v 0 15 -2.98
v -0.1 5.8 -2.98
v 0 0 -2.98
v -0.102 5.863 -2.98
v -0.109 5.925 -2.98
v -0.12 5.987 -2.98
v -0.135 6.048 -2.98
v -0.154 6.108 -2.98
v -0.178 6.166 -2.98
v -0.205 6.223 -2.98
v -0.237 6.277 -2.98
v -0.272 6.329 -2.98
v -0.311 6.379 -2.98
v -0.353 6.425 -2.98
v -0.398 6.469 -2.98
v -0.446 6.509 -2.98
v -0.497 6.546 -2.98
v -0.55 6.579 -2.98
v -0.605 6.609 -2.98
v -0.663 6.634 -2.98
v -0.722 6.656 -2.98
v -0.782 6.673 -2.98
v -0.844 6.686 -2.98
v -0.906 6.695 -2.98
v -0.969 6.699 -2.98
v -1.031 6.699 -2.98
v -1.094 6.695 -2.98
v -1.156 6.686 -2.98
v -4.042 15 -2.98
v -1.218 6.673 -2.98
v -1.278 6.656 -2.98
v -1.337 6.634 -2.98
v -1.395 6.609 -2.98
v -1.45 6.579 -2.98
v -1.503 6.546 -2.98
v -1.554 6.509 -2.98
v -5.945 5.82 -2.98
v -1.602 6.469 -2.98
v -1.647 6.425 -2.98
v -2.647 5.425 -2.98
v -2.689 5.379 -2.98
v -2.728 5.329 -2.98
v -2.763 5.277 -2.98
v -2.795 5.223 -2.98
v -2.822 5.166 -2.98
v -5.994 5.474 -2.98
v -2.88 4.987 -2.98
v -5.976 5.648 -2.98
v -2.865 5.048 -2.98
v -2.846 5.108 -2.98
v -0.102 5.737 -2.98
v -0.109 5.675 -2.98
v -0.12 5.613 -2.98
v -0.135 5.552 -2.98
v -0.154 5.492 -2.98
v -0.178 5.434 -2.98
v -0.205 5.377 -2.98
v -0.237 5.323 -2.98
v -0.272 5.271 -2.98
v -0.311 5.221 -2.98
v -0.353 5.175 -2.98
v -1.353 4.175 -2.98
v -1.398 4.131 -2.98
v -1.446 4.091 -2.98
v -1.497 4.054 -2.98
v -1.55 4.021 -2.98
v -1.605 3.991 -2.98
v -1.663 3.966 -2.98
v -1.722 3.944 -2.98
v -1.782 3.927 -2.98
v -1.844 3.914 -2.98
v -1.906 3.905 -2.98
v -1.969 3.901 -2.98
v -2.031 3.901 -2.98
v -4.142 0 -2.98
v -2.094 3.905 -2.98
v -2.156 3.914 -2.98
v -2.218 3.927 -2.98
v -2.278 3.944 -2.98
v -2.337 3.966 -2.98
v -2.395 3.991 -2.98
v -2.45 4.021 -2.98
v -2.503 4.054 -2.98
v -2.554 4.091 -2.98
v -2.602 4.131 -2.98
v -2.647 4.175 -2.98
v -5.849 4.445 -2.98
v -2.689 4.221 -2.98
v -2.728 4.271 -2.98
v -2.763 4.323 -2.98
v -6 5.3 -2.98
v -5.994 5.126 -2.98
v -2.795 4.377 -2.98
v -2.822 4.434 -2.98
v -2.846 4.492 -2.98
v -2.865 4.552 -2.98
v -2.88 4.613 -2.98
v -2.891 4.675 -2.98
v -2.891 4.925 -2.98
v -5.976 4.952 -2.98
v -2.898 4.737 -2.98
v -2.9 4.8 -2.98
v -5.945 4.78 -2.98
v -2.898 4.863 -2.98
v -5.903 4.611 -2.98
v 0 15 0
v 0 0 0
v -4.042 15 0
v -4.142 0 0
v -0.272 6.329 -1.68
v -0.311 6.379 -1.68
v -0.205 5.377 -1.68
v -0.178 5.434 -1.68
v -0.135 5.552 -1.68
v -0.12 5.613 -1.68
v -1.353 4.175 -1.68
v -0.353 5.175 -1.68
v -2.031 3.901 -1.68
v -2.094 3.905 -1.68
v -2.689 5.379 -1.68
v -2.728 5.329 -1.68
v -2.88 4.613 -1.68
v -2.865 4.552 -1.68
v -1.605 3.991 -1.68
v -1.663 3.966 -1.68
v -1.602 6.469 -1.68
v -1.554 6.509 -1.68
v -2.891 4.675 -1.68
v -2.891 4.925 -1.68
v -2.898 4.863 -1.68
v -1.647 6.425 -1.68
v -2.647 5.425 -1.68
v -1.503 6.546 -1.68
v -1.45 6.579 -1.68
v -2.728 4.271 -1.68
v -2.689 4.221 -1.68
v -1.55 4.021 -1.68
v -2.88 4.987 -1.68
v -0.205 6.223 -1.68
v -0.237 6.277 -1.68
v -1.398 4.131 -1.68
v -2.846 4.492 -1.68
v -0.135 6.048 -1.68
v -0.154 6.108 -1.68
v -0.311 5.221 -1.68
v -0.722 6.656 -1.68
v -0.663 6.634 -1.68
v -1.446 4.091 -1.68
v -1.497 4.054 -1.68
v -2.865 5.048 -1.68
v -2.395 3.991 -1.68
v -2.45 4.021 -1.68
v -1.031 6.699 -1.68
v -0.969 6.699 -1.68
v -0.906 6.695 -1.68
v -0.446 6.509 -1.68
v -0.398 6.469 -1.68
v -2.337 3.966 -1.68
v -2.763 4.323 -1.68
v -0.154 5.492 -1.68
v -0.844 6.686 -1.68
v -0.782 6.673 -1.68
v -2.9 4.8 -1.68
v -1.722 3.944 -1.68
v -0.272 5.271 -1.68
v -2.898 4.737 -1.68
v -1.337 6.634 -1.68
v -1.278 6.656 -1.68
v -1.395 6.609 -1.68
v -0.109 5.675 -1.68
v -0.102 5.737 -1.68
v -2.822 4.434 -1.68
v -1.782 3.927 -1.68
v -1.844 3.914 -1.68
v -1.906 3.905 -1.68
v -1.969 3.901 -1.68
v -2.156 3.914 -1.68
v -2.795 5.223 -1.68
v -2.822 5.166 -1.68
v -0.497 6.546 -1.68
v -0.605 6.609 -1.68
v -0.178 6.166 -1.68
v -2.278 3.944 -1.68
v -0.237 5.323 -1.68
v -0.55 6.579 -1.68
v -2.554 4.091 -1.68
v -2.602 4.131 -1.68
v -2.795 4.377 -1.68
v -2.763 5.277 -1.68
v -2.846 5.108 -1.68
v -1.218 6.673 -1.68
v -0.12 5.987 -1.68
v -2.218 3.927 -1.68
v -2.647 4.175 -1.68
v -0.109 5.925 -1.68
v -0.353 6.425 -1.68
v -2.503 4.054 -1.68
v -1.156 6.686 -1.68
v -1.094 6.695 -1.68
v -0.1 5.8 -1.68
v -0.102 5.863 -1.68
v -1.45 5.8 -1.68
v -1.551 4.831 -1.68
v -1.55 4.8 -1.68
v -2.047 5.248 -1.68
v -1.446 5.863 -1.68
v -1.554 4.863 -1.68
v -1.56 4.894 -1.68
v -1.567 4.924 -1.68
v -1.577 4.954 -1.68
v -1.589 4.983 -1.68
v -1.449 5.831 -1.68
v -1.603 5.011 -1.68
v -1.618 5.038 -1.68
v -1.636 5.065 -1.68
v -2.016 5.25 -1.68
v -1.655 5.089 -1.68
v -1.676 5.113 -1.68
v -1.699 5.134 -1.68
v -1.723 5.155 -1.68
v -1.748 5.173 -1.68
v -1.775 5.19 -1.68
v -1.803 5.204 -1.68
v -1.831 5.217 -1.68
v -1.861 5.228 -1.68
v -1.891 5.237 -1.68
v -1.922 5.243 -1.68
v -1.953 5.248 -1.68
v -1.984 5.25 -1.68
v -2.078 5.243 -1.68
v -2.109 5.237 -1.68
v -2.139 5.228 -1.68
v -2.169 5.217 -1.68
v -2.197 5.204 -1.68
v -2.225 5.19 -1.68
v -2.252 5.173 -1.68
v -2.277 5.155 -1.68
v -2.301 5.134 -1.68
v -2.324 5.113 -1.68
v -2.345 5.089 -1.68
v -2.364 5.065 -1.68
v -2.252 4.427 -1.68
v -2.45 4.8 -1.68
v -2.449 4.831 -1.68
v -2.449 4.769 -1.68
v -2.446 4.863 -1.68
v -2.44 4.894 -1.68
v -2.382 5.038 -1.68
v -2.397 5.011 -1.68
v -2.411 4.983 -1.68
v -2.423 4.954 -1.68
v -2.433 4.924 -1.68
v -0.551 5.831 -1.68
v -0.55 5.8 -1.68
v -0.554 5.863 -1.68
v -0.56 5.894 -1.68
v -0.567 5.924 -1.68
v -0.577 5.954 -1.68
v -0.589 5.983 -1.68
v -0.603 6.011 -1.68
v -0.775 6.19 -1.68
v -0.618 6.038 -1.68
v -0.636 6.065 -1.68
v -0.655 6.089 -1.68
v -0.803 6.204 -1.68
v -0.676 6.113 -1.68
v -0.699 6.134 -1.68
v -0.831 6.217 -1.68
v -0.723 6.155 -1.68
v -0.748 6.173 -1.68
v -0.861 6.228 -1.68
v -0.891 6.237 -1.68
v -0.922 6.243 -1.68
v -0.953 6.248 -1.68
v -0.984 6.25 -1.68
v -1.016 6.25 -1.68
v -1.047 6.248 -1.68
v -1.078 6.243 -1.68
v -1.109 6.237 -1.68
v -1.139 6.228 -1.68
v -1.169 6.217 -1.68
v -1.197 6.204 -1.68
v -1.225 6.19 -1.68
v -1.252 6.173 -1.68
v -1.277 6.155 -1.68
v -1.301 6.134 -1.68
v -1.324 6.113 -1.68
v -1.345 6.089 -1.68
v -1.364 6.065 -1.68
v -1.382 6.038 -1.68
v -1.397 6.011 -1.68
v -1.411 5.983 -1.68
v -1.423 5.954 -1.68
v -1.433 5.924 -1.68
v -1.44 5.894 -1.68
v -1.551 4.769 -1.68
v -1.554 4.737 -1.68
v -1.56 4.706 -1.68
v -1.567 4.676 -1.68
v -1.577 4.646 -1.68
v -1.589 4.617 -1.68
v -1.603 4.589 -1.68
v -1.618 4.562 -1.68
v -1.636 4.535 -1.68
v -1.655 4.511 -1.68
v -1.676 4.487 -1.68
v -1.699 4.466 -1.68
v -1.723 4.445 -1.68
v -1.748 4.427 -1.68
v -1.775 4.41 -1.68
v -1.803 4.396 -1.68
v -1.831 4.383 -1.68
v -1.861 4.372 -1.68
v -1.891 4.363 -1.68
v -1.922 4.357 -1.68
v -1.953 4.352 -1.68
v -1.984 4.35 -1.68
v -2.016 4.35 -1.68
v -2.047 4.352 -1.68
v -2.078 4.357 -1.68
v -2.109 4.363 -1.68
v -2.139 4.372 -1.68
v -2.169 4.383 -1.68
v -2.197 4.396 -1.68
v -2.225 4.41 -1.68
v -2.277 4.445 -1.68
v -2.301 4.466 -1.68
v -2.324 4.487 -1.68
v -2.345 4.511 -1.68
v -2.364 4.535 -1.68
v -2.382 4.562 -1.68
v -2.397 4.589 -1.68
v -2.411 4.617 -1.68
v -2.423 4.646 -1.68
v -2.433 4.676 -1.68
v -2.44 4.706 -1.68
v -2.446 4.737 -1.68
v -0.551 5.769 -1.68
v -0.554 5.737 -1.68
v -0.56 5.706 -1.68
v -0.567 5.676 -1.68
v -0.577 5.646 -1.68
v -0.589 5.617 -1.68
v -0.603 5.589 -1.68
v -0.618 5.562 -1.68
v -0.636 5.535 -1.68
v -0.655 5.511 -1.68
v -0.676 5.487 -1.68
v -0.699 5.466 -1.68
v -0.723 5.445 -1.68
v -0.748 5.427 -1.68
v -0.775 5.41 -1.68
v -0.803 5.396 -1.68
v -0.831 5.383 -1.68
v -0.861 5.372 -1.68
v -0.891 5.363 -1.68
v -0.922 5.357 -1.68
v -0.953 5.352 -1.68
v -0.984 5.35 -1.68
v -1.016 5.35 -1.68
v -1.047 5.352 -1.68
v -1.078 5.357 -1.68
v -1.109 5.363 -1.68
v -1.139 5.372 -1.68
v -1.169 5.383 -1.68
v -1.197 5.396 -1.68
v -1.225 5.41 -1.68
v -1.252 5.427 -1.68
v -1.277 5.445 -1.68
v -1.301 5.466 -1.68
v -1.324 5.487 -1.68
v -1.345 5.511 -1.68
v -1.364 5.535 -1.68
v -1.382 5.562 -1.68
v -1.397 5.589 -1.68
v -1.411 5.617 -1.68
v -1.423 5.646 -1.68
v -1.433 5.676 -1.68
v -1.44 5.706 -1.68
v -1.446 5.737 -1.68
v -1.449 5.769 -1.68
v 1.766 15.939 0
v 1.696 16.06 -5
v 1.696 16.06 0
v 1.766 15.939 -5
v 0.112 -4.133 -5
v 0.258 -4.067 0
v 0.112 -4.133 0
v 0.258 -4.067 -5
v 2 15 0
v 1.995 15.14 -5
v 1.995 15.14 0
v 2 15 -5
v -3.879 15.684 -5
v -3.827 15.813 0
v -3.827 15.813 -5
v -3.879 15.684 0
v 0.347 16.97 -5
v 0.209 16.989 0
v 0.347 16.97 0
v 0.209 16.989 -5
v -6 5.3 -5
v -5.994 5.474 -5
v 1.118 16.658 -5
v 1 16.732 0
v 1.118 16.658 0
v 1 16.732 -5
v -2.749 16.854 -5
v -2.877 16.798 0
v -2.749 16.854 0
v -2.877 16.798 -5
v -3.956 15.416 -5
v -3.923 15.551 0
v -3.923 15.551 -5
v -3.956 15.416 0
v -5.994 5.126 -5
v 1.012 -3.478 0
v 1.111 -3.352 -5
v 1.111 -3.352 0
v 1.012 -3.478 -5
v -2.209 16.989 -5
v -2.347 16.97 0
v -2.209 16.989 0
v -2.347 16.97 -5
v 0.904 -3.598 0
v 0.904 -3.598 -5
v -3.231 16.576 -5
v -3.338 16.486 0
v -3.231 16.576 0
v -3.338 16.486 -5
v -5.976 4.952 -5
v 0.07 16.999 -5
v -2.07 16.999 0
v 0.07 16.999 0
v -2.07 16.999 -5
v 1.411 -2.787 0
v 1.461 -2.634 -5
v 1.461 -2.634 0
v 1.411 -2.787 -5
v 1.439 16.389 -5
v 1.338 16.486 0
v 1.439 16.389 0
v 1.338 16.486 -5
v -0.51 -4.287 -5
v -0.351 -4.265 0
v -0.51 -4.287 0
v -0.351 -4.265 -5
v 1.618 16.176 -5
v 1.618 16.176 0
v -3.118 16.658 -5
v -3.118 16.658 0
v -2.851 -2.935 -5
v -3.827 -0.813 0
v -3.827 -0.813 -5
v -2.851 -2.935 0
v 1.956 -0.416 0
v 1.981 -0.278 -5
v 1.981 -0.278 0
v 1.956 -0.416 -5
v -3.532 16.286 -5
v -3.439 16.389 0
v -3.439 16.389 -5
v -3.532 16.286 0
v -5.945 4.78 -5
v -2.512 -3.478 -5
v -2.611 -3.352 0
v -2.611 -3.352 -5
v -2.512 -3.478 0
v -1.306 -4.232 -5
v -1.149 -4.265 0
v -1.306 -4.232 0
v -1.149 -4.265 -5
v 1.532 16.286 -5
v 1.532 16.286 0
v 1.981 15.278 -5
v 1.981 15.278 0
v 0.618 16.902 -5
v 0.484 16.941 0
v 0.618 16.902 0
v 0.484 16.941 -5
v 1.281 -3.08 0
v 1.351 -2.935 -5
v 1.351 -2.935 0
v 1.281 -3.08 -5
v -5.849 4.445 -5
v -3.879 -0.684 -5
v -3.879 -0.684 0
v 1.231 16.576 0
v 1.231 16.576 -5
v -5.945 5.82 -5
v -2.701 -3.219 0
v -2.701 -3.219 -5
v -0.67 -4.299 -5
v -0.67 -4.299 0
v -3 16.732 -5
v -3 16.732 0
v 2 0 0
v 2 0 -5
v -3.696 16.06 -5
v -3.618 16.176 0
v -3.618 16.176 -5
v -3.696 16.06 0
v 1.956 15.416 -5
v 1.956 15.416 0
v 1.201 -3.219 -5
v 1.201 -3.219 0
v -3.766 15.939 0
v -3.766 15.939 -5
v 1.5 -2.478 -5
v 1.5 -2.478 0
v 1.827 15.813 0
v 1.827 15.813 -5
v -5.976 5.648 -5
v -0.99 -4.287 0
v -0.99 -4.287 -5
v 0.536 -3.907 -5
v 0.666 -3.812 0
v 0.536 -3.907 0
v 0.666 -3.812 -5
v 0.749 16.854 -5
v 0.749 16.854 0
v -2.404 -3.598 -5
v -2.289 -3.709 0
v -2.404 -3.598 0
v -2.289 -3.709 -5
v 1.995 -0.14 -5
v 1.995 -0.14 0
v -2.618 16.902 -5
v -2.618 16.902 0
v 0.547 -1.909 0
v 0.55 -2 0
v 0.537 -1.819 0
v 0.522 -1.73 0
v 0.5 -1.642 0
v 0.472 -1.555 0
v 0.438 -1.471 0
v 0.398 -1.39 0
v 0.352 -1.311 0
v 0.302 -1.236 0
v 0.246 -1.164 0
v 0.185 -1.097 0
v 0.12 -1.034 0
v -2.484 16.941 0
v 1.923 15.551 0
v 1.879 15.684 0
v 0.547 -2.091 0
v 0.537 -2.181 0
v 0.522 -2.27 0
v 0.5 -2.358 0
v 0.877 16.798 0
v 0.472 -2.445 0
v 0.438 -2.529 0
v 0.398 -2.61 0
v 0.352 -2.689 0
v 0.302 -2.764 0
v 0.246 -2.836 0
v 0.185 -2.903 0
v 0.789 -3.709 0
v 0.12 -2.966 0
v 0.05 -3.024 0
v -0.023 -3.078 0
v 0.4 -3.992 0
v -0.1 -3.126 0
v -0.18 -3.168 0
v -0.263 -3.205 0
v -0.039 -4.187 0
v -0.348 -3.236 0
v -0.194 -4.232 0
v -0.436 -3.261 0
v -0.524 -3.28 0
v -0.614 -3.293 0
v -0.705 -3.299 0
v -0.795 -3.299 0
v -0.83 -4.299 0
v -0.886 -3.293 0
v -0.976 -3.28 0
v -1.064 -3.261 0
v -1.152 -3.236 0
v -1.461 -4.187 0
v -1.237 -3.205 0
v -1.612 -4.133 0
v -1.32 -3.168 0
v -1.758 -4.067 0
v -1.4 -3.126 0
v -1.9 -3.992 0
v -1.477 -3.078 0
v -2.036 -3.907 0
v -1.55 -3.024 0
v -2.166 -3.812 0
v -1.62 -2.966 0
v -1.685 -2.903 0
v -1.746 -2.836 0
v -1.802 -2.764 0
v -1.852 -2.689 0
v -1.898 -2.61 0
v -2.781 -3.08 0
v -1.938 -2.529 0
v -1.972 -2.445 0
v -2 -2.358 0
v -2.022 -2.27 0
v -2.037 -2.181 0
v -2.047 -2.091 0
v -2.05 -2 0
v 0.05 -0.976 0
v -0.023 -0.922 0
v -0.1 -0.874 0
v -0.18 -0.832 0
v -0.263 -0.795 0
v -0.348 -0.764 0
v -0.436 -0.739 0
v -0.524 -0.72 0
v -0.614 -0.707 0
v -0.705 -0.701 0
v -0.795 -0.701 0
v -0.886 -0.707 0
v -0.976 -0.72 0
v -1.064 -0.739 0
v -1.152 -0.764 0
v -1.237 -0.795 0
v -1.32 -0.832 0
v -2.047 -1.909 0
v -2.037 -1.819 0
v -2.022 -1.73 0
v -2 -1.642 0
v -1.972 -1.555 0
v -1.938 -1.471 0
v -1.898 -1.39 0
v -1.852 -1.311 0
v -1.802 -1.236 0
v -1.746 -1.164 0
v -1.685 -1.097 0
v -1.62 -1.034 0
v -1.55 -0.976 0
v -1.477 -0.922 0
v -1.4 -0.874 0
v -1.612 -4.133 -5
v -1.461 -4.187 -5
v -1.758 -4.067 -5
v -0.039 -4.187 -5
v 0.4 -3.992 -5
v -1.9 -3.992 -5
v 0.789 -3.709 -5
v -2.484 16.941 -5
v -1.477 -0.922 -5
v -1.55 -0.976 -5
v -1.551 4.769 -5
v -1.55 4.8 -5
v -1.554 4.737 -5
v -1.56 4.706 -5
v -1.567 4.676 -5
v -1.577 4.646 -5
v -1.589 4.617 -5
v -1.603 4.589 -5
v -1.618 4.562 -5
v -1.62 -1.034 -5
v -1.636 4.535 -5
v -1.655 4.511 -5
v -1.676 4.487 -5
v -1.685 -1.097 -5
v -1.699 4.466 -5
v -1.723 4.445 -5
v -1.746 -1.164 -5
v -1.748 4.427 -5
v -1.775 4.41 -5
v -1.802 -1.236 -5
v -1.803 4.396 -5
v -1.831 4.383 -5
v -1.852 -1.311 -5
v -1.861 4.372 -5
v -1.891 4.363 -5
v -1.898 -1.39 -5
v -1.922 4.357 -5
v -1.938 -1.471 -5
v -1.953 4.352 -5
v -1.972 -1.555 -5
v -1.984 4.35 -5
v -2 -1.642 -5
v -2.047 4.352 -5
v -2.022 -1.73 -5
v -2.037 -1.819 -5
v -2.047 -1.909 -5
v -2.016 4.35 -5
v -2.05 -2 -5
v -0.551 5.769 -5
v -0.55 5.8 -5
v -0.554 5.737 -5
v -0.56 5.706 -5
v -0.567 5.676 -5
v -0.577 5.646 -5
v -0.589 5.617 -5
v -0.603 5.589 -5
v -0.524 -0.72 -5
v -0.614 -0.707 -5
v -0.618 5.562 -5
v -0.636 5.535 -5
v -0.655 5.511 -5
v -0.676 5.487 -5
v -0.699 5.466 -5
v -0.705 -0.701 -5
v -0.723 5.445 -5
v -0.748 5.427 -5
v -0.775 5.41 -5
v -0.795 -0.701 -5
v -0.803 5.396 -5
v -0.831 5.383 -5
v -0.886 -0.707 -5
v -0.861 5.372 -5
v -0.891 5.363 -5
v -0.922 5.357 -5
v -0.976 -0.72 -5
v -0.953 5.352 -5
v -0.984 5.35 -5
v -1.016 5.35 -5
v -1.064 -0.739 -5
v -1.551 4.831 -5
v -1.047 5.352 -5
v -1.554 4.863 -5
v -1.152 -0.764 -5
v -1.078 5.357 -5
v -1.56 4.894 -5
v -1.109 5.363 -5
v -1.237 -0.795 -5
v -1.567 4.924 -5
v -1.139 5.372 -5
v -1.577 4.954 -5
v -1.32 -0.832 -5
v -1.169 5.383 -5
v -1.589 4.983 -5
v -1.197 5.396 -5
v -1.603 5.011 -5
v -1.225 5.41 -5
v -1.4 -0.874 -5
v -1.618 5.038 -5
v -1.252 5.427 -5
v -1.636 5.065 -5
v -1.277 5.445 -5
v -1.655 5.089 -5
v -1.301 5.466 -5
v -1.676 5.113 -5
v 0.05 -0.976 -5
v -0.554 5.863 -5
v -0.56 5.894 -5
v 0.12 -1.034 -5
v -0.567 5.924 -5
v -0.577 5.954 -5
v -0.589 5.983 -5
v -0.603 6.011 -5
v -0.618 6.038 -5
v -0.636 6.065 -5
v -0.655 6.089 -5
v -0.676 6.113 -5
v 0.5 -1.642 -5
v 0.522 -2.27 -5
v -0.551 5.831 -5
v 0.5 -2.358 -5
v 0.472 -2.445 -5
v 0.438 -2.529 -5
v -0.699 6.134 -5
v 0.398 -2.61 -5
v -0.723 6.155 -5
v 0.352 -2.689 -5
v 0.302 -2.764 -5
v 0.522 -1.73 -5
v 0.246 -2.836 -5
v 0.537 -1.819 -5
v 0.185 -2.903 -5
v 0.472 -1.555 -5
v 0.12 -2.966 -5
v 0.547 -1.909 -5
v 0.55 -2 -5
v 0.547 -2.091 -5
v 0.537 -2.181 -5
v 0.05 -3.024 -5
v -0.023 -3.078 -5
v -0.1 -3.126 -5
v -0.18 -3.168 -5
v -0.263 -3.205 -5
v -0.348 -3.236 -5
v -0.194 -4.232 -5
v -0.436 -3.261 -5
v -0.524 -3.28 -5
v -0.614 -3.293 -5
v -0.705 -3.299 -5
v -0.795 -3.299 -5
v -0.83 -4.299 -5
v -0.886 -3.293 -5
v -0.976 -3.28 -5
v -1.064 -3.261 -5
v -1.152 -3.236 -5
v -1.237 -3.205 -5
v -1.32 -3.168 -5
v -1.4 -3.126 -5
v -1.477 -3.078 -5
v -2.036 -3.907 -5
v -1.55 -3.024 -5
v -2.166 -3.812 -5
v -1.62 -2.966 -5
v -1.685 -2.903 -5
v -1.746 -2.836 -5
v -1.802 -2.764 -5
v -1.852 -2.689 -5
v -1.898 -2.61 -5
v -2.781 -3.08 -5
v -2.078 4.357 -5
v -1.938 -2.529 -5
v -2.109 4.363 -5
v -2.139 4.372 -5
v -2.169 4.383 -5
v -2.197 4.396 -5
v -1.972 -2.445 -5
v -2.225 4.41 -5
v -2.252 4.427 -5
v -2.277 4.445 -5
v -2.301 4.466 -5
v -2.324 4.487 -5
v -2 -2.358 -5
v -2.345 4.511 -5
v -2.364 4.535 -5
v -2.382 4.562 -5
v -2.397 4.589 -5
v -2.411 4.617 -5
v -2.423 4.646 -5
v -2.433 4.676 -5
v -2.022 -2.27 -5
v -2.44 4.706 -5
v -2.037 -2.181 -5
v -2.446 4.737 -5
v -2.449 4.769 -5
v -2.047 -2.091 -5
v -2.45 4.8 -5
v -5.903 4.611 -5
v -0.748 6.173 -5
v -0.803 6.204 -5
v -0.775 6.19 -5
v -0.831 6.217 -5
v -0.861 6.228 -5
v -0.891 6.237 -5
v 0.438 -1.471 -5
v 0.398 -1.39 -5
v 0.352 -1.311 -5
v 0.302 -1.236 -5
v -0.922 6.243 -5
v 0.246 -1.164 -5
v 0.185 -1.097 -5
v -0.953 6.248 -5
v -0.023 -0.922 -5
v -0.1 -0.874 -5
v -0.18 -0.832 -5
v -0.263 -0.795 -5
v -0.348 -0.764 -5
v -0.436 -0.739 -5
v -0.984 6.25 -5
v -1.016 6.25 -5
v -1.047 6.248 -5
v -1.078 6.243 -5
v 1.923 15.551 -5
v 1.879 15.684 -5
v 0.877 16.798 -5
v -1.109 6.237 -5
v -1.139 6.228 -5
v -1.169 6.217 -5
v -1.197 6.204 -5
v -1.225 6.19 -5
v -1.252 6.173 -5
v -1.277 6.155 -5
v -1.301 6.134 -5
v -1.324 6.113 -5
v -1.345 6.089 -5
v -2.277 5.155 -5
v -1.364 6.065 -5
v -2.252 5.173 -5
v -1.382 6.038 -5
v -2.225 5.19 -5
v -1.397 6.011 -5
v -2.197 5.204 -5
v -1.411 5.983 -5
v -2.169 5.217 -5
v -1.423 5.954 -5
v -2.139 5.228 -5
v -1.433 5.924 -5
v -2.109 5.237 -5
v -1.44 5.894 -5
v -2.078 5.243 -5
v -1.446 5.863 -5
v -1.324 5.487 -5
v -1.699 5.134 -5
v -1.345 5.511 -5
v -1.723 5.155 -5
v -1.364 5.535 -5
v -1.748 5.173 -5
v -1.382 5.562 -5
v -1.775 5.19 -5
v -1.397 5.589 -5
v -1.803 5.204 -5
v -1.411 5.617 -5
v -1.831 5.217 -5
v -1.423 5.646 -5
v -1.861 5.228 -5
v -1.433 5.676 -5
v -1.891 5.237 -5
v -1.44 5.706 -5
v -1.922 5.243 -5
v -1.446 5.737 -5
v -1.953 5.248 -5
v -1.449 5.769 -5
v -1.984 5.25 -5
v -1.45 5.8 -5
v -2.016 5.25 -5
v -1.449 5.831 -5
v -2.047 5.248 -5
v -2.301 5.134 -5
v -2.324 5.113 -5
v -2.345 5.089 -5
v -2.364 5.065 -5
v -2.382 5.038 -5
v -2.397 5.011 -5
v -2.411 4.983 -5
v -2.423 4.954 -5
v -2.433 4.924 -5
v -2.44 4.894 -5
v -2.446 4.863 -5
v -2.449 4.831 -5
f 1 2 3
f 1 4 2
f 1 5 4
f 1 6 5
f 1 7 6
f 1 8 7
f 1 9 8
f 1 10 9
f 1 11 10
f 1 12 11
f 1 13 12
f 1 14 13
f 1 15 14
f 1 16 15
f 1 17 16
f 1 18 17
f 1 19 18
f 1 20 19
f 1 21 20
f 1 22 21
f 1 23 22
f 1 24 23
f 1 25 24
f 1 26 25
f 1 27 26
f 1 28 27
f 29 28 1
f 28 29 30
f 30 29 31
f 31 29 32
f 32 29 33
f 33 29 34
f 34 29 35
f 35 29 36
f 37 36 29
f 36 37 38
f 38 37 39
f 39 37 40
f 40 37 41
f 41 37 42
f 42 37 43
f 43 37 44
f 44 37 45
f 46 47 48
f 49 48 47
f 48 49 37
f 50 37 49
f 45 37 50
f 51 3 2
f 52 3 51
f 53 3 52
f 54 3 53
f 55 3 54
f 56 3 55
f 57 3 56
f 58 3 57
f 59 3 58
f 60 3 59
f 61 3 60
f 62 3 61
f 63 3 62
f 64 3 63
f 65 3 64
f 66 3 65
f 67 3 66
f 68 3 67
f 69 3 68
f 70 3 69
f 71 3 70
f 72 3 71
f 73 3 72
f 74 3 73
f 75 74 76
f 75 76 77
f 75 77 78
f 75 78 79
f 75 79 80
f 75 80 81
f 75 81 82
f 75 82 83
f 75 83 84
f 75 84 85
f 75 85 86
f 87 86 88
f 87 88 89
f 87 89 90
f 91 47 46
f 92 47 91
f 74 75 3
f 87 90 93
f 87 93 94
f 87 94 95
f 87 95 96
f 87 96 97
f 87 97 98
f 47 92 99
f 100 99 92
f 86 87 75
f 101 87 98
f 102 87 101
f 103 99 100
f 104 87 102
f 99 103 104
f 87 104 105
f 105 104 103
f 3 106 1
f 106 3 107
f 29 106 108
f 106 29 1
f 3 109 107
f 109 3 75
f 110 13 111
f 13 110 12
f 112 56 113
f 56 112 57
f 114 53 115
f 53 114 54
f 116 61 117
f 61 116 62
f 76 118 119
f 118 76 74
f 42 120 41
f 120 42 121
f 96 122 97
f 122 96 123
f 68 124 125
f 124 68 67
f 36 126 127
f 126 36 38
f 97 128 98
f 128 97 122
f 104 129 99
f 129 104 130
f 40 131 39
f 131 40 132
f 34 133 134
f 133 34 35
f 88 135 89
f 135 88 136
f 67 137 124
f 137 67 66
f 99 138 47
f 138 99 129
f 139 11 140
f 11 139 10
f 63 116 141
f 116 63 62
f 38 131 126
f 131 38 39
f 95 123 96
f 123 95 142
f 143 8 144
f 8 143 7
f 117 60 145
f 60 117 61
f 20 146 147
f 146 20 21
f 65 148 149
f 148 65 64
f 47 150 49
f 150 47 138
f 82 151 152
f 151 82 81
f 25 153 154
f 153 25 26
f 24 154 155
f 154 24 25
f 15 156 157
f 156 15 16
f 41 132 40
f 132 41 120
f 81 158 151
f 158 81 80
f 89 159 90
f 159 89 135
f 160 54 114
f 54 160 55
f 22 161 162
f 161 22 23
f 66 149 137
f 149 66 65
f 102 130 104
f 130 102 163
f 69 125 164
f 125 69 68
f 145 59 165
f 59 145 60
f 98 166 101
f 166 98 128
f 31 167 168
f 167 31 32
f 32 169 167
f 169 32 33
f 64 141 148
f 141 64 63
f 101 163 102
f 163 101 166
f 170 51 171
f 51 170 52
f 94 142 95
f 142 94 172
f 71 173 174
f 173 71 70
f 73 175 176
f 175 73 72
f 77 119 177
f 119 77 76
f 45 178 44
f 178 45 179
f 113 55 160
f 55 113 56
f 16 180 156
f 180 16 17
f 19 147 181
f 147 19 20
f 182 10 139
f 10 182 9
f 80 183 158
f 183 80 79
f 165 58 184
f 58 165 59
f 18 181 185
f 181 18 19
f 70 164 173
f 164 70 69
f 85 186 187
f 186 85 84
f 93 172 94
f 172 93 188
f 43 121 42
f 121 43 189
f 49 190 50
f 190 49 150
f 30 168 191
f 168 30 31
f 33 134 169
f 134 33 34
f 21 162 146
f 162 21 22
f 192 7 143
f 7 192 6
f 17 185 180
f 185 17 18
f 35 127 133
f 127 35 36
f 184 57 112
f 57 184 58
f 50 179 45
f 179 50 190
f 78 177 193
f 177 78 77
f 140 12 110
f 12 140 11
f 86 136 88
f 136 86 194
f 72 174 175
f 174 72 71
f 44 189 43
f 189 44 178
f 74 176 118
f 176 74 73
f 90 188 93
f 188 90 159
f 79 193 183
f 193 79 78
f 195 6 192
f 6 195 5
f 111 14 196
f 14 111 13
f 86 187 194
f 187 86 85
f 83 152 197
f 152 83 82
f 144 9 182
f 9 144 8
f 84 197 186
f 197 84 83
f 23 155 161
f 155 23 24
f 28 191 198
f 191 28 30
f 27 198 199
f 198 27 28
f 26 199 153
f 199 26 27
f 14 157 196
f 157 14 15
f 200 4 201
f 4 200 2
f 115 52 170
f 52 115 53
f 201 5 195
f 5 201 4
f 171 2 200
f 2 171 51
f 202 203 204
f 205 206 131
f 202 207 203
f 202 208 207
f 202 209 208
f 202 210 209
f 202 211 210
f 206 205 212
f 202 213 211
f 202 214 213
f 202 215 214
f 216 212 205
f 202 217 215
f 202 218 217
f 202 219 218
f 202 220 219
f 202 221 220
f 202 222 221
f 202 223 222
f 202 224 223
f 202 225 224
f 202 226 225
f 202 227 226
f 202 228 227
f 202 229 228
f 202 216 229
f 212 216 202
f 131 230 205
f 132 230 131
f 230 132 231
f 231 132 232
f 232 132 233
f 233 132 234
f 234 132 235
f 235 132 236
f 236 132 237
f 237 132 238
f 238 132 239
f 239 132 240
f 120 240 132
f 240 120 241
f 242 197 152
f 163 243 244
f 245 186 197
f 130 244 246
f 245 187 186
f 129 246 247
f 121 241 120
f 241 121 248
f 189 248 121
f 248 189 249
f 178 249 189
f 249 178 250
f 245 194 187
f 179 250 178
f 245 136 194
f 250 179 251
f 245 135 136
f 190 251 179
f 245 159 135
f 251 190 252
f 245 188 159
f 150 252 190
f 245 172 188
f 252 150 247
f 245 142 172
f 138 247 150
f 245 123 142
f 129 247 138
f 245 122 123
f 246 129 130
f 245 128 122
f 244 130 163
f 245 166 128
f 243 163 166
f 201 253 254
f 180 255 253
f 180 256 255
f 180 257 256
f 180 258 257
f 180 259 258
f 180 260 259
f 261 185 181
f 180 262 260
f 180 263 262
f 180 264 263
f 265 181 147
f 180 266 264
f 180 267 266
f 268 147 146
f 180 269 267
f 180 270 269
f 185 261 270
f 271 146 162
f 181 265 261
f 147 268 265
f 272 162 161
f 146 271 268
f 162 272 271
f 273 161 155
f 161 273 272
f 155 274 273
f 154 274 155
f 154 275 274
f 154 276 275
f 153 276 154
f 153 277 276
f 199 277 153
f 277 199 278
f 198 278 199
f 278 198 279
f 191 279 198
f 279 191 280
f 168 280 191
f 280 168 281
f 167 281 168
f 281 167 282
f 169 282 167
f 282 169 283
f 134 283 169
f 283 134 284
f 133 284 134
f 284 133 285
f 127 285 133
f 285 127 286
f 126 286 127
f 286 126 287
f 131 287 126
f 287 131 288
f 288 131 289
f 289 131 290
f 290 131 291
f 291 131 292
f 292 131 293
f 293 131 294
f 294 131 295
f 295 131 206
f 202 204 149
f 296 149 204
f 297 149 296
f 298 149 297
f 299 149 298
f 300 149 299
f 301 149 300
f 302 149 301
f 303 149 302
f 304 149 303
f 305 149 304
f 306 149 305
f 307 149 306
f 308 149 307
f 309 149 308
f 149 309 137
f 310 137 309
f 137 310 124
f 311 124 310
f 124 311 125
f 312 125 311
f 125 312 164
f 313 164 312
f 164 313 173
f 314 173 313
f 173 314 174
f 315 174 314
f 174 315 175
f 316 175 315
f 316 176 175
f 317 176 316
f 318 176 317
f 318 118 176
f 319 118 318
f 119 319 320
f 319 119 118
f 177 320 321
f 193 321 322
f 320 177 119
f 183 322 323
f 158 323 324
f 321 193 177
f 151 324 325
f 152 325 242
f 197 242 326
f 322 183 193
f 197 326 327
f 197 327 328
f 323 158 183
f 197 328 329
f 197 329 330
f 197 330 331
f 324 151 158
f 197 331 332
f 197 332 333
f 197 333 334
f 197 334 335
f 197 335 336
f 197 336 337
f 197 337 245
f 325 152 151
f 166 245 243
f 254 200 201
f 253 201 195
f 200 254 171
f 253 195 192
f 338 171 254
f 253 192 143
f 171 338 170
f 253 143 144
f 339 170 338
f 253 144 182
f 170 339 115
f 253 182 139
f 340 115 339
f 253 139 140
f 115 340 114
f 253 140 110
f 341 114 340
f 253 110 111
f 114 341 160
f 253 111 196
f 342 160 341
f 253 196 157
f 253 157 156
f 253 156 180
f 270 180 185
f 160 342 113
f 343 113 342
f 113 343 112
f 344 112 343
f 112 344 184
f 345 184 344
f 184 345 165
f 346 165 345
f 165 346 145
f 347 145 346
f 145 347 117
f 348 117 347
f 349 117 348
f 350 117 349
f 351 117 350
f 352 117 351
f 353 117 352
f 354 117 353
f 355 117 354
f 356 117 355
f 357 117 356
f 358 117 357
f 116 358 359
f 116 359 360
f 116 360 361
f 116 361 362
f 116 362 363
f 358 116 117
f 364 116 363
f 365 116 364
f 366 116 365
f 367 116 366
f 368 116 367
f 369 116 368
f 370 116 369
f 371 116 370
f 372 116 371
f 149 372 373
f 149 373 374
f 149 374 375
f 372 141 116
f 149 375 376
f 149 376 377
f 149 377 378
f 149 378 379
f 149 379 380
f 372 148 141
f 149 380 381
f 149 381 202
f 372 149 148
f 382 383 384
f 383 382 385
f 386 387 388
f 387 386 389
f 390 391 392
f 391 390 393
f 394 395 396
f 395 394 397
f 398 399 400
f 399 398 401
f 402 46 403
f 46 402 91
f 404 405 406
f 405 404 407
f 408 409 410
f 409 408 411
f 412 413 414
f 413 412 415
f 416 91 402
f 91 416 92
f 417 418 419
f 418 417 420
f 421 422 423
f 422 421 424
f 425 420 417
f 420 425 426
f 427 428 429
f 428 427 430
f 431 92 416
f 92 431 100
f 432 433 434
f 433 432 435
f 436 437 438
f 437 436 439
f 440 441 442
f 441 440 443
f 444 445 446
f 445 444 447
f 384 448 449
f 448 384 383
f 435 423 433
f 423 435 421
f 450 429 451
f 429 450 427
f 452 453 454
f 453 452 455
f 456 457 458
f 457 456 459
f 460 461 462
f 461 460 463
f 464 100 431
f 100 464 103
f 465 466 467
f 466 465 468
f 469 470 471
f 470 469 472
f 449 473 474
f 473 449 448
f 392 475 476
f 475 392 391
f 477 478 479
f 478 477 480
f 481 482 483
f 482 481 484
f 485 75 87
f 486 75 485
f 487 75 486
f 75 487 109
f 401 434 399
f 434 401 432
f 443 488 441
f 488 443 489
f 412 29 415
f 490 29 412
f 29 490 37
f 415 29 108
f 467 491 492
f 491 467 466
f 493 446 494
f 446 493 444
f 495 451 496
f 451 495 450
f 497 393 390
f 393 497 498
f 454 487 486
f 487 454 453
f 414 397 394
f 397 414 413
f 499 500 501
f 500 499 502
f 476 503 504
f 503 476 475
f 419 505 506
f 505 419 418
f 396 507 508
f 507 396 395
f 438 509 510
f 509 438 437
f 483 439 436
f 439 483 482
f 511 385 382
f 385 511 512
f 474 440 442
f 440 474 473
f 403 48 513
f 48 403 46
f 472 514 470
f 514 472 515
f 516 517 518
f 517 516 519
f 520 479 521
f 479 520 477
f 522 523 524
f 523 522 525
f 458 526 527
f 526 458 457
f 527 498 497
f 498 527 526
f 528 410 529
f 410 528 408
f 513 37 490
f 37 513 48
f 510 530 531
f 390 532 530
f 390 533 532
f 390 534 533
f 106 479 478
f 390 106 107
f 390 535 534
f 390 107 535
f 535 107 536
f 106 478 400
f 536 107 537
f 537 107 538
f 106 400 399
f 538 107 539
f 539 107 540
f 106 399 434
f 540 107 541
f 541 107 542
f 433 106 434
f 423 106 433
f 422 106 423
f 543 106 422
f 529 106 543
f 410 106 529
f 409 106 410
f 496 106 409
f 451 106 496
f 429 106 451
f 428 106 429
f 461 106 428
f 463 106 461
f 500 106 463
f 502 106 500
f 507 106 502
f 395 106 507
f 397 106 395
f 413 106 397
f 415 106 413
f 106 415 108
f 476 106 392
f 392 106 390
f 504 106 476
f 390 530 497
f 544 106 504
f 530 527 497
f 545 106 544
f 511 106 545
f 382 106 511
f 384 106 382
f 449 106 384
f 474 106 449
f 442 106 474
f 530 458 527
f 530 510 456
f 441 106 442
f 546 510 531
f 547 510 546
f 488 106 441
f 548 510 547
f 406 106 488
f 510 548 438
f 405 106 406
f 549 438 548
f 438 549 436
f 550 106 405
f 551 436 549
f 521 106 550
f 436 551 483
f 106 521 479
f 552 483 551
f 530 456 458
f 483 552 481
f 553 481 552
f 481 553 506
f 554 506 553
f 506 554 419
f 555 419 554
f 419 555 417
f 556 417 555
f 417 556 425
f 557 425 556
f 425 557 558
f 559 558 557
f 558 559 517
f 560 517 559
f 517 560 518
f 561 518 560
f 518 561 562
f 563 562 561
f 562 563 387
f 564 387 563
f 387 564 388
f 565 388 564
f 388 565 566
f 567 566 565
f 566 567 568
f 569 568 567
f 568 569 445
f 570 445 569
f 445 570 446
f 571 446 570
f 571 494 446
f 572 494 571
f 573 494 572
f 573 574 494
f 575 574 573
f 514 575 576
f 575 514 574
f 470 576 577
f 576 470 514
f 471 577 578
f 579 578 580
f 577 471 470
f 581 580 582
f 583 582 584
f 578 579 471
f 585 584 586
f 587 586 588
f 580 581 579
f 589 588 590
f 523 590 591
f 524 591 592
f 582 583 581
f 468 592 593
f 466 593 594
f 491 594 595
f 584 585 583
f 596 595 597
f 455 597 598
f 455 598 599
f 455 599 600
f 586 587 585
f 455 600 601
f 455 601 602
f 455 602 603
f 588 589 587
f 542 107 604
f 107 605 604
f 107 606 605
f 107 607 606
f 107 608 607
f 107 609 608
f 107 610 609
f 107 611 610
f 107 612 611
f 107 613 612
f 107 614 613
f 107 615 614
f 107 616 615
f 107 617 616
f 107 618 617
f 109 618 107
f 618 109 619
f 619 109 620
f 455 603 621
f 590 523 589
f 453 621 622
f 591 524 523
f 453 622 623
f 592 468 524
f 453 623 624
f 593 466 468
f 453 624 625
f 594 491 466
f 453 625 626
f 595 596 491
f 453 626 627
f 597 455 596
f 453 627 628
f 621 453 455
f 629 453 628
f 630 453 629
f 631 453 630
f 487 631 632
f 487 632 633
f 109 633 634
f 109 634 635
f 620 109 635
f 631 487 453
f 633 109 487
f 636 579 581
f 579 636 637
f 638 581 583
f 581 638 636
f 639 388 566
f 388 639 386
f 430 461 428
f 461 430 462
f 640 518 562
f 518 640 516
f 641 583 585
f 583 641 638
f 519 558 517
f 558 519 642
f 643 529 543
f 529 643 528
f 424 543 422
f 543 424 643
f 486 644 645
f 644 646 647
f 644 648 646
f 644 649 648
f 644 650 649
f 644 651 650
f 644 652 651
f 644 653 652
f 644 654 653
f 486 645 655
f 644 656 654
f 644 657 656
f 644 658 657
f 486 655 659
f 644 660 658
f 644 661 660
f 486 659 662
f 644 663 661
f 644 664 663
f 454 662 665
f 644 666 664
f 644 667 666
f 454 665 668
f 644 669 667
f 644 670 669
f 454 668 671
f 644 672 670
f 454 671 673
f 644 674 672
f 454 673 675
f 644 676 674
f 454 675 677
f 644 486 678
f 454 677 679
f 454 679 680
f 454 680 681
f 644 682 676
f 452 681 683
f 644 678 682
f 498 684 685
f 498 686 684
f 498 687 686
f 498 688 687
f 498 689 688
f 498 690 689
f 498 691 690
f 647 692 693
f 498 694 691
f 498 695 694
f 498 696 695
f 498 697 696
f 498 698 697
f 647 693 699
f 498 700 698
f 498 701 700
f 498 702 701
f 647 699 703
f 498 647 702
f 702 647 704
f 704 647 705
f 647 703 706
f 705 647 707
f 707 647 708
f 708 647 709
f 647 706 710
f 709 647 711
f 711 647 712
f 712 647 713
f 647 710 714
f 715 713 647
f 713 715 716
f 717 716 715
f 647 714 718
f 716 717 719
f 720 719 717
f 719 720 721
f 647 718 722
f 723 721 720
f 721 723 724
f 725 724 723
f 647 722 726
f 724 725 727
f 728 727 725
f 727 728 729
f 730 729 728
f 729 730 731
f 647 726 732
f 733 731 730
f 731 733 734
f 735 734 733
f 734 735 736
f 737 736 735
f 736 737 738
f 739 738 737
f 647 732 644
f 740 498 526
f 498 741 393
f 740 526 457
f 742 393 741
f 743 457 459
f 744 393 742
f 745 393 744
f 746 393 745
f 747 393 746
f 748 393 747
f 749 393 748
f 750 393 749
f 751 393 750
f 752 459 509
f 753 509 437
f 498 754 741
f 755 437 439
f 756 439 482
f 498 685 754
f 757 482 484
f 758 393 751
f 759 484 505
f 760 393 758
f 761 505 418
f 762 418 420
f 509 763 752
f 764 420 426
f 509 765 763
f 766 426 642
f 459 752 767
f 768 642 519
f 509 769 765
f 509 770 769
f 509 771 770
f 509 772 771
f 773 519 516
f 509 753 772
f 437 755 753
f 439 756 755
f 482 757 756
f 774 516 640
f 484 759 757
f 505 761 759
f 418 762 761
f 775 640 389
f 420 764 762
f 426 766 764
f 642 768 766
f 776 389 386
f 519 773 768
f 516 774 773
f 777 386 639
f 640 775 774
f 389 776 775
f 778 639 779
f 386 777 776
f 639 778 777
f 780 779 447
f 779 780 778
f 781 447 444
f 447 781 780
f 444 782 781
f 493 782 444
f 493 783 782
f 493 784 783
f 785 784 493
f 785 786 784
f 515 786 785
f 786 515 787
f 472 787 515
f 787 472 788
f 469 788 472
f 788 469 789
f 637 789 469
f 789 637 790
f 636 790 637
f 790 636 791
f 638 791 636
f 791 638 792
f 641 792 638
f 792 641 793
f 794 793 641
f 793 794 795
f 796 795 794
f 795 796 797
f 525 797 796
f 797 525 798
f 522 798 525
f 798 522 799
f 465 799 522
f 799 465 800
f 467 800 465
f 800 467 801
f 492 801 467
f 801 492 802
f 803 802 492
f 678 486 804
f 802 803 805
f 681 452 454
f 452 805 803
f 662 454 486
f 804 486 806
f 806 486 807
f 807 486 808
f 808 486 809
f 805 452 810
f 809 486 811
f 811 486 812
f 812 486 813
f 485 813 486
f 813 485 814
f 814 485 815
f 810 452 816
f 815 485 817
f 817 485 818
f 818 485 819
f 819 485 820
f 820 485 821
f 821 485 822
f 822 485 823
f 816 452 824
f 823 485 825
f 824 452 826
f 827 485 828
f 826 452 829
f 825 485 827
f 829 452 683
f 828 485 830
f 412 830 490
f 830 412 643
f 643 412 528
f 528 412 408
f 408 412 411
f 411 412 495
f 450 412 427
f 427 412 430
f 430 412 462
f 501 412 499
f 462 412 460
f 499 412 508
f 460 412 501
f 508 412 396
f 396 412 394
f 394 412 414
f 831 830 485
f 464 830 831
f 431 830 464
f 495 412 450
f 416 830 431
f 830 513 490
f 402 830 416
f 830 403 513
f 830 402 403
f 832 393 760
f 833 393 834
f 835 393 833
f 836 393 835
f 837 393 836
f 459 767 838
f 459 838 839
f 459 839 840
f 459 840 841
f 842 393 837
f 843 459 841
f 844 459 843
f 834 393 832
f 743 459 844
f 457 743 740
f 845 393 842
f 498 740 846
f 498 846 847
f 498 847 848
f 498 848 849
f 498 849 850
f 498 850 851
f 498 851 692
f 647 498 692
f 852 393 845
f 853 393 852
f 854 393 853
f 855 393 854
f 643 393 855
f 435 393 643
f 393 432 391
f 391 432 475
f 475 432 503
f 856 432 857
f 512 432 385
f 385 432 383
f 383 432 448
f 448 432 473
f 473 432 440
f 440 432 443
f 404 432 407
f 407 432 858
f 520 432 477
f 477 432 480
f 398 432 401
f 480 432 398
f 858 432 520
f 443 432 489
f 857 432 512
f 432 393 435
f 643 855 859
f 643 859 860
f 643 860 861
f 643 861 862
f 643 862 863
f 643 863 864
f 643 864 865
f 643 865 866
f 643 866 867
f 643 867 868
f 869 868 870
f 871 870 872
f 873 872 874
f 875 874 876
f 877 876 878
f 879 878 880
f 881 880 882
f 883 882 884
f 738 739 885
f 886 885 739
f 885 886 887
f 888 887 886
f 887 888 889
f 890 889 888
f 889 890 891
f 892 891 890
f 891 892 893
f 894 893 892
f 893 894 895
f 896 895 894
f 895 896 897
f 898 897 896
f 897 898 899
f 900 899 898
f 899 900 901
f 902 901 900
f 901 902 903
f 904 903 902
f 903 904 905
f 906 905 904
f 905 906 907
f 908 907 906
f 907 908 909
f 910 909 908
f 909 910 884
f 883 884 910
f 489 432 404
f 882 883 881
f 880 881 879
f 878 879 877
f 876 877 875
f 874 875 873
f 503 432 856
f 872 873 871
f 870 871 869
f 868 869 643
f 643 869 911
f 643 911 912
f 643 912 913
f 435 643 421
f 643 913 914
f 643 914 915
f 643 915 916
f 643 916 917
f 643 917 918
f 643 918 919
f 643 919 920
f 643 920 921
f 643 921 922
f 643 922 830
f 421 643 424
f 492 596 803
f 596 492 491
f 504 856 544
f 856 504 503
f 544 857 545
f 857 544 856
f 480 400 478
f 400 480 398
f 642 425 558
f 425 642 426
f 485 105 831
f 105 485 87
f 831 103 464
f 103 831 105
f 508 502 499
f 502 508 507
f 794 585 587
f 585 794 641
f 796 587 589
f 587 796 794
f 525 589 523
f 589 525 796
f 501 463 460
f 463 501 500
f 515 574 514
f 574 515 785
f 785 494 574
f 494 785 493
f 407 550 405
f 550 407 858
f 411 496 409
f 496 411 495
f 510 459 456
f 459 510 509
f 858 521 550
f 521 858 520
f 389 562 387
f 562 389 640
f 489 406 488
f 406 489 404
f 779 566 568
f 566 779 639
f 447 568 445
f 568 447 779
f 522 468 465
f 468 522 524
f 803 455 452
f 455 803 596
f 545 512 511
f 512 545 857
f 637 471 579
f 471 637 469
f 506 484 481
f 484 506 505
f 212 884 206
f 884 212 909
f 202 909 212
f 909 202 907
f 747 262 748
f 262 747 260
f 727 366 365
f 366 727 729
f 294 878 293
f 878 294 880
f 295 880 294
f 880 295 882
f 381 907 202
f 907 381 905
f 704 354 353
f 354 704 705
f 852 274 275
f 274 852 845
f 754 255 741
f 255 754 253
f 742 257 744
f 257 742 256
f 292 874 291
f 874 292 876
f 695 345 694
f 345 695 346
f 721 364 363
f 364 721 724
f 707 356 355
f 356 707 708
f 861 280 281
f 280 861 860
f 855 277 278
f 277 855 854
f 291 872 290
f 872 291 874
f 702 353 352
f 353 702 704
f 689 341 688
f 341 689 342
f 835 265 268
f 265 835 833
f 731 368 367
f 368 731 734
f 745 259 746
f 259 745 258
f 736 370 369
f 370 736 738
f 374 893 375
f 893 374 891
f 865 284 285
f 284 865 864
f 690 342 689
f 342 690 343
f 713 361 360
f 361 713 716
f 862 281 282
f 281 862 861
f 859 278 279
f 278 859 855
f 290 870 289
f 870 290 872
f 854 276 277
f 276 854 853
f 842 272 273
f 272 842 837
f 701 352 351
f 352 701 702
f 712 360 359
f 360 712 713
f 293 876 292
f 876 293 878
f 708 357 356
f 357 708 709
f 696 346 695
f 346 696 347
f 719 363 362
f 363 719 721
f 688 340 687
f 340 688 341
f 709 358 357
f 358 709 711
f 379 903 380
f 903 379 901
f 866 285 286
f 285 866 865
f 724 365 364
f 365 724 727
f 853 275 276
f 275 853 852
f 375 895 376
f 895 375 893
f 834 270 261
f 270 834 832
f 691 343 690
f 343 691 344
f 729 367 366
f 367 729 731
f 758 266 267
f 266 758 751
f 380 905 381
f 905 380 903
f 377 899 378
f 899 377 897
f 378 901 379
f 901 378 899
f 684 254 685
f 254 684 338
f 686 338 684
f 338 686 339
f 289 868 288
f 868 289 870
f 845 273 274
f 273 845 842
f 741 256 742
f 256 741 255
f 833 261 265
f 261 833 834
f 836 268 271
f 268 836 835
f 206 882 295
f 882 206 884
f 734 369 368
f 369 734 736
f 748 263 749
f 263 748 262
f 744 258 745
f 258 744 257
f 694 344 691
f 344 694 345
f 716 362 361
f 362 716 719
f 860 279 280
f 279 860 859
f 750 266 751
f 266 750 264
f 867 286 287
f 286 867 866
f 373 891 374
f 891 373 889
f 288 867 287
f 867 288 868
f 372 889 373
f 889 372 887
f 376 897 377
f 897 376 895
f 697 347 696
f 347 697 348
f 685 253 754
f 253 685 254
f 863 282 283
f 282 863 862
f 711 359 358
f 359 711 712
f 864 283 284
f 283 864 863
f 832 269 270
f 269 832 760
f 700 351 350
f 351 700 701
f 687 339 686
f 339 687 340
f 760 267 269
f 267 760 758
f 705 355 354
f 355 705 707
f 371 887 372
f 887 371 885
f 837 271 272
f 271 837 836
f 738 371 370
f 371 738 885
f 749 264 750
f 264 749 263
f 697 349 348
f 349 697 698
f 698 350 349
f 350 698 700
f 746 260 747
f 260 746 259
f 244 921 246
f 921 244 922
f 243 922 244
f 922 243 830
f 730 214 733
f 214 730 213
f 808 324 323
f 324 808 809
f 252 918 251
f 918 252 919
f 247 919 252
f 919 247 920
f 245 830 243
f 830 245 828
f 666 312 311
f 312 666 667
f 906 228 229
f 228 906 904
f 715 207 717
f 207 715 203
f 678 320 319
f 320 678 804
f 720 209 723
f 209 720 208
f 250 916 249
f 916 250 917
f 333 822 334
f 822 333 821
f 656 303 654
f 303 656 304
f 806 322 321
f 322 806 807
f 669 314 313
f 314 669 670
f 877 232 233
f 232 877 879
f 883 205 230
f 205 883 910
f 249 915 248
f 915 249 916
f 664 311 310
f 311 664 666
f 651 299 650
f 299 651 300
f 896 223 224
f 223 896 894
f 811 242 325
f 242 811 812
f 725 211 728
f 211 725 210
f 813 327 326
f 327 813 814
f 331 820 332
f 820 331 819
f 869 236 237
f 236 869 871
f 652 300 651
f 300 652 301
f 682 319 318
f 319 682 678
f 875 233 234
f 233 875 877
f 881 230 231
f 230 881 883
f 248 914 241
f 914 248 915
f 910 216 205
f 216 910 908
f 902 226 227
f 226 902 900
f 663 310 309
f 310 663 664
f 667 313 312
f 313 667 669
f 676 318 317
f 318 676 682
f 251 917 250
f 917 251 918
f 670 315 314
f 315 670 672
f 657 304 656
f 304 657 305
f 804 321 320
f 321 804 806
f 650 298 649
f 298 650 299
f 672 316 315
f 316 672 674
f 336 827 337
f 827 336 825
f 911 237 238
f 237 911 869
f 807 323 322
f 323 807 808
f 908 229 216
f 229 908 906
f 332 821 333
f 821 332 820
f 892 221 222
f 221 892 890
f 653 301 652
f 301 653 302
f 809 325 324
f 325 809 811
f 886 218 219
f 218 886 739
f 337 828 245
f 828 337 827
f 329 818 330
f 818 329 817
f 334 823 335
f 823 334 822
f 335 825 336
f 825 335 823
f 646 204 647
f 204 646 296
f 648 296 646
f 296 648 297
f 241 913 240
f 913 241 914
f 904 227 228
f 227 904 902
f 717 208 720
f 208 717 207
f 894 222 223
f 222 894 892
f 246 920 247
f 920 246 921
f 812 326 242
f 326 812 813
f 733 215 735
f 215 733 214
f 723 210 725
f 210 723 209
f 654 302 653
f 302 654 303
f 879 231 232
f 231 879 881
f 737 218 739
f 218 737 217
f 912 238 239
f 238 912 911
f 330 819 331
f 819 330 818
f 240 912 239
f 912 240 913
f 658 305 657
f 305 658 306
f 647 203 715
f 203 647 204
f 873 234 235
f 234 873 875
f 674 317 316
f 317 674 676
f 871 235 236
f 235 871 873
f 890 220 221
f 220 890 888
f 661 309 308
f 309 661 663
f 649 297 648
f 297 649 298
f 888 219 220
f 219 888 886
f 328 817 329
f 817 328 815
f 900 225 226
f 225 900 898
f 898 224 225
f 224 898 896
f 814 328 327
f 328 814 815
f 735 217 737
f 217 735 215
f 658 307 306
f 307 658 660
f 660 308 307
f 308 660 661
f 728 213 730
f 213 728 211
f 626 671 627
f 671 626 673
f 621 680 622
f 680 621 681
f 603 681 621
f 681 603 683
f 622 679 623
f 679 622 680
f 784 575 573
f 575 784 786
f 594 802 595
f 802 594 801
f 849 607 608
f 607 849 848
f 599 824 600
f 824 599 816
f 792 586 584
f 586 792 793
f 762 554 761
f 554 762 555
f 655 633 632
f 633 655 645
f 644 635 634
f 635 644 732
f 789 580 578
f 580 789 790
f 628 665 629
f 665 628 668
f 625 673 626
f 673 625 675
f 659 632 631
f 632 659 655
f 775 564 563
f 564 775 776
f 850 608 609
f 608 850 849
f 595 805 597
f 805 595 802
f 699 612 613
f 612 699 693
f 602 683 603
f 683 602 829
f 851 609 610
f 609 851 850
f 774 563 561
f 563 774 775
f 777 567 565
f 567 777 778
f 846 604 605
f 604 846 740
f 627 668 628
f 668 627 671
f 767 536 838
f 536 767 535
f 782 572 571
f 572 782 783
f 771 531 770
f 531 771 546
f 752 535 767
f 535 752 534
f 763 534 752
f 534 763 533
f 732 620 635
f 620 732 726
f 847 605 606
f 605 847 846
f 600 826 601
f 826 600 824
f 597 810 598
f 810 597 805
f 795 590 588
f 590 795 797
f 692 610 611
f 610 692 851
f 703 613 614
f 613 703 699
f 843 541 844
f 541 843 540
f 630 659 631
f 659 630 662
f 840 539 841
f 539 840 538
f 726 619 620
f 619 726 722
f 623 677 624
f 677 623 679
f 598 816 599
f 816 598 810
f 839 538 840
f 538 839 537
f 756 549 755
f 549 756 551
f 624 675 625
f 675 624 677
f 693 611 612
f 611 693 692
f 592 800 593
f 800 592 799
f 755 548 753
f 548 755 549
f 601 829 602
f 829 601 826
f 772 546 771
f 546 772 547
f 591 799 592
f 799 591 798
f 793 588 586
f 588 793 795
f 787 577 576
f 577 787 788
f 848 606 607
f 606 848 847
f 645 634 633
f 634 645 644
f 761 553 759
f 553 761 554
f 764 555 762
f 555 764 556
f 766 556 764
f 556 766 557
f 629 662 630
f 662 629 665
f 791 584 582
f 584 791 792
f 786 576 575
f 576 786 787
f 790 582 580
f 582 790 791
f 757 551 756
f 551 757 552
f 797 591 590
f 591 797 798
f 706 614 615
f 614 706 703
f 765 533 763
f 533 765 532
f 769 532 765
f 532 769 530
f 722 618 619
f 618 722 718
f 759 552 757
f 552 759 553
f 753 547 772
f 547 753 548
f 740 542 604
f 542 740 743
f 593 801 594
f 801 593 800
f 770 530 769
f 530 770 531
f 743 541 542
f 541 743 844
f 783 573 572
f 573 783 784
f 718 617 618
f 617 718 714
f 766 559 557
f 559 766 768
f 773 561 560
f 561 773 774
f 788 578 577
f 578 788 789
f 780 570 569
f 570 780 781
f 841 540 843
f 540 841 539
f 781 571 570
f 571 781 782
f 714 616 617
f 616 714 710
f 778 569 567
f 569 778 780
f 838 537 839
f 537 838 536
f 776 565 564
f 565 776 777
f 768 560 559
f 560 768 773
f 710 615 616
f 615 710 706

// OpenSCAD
/*
2022-07-23
Notes: pin labeling did not print correctly so they have been commented out. The wire path intended for strain relief did not seem big enough for both wires and probably should be enlarged.

2022-07-02
This OpenSCAD design allows for OpenVTX bootloader programming onto the EWRF E7082VM board without needing to solder leads onto the CLK or DIO pads. You will still need to connect power and a common ground to the ST-LINK V2.  I have verified this print allowed me to flash OpenVTX bootloader to my VTX labeled 7082VM V12. I printed this in TPU/TPE and needed to re-poke holes for the wires with a sim card eject tool. I then ran some solid hook up wire as shown in images taking care that the wires do not short. In order to make good contact with the CLK and DIO pads I do recomend utilizing a sharp hobby knife to carefully shave the excess perferations from the side of the PCB until smooth.

*/
$fn=90;

BoardWidth=14;
BoardLength=15;
BoardThick=0.8;
PadRad=0.9*0.5; // actual diameter 0.6mm is a bit small for most printers
PadPostRad=1.8*0.5;
PadAWidth=1;
PadALength=5.8;
PadBWidth=2;
PadBLength=4.8;
HolderThick=3;
HolderPadding=2;
HolderBaseOverhang=3;
HolderMaxOverhang=6;
HolderMaxOverhangLength=(PadALength-PadBLength)*0.5+PadBLength;
HolderRad=5*0.5;
ConduitRad=2.6*0.5;
TextSize=2.1;


rotate([0,180,0]) EWRF_E7082VM_bootloader_flash_helper();

//
module EWRF_E7082VM_bootloader_flash_helper(){
difference(){
hull(){
// first corner
translate([0,0,(HolderThick+HolderPadding)*0.5]) cylinder(HolderThick+HolderPadding,HolderPadding,HolderPadding,true);
// far corner
translate([0,BoardLength,(HolderThick+HolderPadding)*0.5]) cylinder(HolderThick+HolderPadding,HolderPadding,HolderPadding,true);
// first corner
translate([HolderPadding,0,(HolderThick+HolderPadding)*0.5]) cylinder(HolderThick+HolderPadding,HolderPadding,HolderPadding,true);
// far corner
translate([HolderPadding,BoardLength,(HolderThick+HolderPadding)*0.5]) cylinder(HolderThick+HolderPadding,HolderPadding,HolderPadding,true);    
// thumb tab
translate([HolderMaxOverhang-HolderRad,HolderMaxOverhangLength,(HolderThick+HolderPadding)*0.5]) cylinder(HolderThick+HolderPadding,HolderRad,HolderRad,true);
// Conduit
translate([HolderBaseOverhang*0.25,-HolderPadding,(HolderThick+HolderPadding)*0.5]) cylinder(HolderThick+HolderPadding,ConduitRad+HolderPadding*0.5,ConduitRad+HolderPadding*0.5,true);
}
// begin main difference items
// main board cavity
difference(){
translate([0,0,-0.02]) cube([BoardWidth,BoardLength,HolderThick]);
hull(){
// PadA Post
translate([PadAWidth,PadALength,(HolderThick+HolderPadding)*1-BoardThick]) cylinder(HolderThick+HolderPadding+0.04,PadPostRad,PadPostRad,true);
// PadB Post
translate([PadBWidth,PadBLength,(HolderThick+HolderPadding)*1-BoardThick]) cylinder(HolderThick+HolderPadding+0.04,PadPostRad,PadPostRad,true);
}
}    
// PadA cavity
translate([PadAWidth,PadALength,(HolderThick+HolderPadding)*0.5]) cylinder(HolderThick+HolderPadding+0.04,PadRad,PadRad,true);
// PadB cavity
translate([PadBWidth,PadBLength,(HolderThick+HolderPadding)*0.5]) cylinder(HolderThick+HolderPadding+0.04,PadRad,PadRad,true);
//conduit cavity
translate([HolderBaseOverhang*0.25,-HolderPadding,(HolderThick+HolderPadding)*0.5]) cylinder(HolderThick+HolderPadding+0.04,ConduitRad,ConduitRad,true);
// text label DIO
//translate([-1.6,PadALength+1,HolderThick+HolderPadding-0.8]) linear_extrude(1) text("DIO", size = TextSize);
// text label CLK
//translate([-1.6,PadBLength-2.8,HolderThick+HolderPadding-0.8]) linear_extrude(1) text("CLK", size = TextSize);
}
}
